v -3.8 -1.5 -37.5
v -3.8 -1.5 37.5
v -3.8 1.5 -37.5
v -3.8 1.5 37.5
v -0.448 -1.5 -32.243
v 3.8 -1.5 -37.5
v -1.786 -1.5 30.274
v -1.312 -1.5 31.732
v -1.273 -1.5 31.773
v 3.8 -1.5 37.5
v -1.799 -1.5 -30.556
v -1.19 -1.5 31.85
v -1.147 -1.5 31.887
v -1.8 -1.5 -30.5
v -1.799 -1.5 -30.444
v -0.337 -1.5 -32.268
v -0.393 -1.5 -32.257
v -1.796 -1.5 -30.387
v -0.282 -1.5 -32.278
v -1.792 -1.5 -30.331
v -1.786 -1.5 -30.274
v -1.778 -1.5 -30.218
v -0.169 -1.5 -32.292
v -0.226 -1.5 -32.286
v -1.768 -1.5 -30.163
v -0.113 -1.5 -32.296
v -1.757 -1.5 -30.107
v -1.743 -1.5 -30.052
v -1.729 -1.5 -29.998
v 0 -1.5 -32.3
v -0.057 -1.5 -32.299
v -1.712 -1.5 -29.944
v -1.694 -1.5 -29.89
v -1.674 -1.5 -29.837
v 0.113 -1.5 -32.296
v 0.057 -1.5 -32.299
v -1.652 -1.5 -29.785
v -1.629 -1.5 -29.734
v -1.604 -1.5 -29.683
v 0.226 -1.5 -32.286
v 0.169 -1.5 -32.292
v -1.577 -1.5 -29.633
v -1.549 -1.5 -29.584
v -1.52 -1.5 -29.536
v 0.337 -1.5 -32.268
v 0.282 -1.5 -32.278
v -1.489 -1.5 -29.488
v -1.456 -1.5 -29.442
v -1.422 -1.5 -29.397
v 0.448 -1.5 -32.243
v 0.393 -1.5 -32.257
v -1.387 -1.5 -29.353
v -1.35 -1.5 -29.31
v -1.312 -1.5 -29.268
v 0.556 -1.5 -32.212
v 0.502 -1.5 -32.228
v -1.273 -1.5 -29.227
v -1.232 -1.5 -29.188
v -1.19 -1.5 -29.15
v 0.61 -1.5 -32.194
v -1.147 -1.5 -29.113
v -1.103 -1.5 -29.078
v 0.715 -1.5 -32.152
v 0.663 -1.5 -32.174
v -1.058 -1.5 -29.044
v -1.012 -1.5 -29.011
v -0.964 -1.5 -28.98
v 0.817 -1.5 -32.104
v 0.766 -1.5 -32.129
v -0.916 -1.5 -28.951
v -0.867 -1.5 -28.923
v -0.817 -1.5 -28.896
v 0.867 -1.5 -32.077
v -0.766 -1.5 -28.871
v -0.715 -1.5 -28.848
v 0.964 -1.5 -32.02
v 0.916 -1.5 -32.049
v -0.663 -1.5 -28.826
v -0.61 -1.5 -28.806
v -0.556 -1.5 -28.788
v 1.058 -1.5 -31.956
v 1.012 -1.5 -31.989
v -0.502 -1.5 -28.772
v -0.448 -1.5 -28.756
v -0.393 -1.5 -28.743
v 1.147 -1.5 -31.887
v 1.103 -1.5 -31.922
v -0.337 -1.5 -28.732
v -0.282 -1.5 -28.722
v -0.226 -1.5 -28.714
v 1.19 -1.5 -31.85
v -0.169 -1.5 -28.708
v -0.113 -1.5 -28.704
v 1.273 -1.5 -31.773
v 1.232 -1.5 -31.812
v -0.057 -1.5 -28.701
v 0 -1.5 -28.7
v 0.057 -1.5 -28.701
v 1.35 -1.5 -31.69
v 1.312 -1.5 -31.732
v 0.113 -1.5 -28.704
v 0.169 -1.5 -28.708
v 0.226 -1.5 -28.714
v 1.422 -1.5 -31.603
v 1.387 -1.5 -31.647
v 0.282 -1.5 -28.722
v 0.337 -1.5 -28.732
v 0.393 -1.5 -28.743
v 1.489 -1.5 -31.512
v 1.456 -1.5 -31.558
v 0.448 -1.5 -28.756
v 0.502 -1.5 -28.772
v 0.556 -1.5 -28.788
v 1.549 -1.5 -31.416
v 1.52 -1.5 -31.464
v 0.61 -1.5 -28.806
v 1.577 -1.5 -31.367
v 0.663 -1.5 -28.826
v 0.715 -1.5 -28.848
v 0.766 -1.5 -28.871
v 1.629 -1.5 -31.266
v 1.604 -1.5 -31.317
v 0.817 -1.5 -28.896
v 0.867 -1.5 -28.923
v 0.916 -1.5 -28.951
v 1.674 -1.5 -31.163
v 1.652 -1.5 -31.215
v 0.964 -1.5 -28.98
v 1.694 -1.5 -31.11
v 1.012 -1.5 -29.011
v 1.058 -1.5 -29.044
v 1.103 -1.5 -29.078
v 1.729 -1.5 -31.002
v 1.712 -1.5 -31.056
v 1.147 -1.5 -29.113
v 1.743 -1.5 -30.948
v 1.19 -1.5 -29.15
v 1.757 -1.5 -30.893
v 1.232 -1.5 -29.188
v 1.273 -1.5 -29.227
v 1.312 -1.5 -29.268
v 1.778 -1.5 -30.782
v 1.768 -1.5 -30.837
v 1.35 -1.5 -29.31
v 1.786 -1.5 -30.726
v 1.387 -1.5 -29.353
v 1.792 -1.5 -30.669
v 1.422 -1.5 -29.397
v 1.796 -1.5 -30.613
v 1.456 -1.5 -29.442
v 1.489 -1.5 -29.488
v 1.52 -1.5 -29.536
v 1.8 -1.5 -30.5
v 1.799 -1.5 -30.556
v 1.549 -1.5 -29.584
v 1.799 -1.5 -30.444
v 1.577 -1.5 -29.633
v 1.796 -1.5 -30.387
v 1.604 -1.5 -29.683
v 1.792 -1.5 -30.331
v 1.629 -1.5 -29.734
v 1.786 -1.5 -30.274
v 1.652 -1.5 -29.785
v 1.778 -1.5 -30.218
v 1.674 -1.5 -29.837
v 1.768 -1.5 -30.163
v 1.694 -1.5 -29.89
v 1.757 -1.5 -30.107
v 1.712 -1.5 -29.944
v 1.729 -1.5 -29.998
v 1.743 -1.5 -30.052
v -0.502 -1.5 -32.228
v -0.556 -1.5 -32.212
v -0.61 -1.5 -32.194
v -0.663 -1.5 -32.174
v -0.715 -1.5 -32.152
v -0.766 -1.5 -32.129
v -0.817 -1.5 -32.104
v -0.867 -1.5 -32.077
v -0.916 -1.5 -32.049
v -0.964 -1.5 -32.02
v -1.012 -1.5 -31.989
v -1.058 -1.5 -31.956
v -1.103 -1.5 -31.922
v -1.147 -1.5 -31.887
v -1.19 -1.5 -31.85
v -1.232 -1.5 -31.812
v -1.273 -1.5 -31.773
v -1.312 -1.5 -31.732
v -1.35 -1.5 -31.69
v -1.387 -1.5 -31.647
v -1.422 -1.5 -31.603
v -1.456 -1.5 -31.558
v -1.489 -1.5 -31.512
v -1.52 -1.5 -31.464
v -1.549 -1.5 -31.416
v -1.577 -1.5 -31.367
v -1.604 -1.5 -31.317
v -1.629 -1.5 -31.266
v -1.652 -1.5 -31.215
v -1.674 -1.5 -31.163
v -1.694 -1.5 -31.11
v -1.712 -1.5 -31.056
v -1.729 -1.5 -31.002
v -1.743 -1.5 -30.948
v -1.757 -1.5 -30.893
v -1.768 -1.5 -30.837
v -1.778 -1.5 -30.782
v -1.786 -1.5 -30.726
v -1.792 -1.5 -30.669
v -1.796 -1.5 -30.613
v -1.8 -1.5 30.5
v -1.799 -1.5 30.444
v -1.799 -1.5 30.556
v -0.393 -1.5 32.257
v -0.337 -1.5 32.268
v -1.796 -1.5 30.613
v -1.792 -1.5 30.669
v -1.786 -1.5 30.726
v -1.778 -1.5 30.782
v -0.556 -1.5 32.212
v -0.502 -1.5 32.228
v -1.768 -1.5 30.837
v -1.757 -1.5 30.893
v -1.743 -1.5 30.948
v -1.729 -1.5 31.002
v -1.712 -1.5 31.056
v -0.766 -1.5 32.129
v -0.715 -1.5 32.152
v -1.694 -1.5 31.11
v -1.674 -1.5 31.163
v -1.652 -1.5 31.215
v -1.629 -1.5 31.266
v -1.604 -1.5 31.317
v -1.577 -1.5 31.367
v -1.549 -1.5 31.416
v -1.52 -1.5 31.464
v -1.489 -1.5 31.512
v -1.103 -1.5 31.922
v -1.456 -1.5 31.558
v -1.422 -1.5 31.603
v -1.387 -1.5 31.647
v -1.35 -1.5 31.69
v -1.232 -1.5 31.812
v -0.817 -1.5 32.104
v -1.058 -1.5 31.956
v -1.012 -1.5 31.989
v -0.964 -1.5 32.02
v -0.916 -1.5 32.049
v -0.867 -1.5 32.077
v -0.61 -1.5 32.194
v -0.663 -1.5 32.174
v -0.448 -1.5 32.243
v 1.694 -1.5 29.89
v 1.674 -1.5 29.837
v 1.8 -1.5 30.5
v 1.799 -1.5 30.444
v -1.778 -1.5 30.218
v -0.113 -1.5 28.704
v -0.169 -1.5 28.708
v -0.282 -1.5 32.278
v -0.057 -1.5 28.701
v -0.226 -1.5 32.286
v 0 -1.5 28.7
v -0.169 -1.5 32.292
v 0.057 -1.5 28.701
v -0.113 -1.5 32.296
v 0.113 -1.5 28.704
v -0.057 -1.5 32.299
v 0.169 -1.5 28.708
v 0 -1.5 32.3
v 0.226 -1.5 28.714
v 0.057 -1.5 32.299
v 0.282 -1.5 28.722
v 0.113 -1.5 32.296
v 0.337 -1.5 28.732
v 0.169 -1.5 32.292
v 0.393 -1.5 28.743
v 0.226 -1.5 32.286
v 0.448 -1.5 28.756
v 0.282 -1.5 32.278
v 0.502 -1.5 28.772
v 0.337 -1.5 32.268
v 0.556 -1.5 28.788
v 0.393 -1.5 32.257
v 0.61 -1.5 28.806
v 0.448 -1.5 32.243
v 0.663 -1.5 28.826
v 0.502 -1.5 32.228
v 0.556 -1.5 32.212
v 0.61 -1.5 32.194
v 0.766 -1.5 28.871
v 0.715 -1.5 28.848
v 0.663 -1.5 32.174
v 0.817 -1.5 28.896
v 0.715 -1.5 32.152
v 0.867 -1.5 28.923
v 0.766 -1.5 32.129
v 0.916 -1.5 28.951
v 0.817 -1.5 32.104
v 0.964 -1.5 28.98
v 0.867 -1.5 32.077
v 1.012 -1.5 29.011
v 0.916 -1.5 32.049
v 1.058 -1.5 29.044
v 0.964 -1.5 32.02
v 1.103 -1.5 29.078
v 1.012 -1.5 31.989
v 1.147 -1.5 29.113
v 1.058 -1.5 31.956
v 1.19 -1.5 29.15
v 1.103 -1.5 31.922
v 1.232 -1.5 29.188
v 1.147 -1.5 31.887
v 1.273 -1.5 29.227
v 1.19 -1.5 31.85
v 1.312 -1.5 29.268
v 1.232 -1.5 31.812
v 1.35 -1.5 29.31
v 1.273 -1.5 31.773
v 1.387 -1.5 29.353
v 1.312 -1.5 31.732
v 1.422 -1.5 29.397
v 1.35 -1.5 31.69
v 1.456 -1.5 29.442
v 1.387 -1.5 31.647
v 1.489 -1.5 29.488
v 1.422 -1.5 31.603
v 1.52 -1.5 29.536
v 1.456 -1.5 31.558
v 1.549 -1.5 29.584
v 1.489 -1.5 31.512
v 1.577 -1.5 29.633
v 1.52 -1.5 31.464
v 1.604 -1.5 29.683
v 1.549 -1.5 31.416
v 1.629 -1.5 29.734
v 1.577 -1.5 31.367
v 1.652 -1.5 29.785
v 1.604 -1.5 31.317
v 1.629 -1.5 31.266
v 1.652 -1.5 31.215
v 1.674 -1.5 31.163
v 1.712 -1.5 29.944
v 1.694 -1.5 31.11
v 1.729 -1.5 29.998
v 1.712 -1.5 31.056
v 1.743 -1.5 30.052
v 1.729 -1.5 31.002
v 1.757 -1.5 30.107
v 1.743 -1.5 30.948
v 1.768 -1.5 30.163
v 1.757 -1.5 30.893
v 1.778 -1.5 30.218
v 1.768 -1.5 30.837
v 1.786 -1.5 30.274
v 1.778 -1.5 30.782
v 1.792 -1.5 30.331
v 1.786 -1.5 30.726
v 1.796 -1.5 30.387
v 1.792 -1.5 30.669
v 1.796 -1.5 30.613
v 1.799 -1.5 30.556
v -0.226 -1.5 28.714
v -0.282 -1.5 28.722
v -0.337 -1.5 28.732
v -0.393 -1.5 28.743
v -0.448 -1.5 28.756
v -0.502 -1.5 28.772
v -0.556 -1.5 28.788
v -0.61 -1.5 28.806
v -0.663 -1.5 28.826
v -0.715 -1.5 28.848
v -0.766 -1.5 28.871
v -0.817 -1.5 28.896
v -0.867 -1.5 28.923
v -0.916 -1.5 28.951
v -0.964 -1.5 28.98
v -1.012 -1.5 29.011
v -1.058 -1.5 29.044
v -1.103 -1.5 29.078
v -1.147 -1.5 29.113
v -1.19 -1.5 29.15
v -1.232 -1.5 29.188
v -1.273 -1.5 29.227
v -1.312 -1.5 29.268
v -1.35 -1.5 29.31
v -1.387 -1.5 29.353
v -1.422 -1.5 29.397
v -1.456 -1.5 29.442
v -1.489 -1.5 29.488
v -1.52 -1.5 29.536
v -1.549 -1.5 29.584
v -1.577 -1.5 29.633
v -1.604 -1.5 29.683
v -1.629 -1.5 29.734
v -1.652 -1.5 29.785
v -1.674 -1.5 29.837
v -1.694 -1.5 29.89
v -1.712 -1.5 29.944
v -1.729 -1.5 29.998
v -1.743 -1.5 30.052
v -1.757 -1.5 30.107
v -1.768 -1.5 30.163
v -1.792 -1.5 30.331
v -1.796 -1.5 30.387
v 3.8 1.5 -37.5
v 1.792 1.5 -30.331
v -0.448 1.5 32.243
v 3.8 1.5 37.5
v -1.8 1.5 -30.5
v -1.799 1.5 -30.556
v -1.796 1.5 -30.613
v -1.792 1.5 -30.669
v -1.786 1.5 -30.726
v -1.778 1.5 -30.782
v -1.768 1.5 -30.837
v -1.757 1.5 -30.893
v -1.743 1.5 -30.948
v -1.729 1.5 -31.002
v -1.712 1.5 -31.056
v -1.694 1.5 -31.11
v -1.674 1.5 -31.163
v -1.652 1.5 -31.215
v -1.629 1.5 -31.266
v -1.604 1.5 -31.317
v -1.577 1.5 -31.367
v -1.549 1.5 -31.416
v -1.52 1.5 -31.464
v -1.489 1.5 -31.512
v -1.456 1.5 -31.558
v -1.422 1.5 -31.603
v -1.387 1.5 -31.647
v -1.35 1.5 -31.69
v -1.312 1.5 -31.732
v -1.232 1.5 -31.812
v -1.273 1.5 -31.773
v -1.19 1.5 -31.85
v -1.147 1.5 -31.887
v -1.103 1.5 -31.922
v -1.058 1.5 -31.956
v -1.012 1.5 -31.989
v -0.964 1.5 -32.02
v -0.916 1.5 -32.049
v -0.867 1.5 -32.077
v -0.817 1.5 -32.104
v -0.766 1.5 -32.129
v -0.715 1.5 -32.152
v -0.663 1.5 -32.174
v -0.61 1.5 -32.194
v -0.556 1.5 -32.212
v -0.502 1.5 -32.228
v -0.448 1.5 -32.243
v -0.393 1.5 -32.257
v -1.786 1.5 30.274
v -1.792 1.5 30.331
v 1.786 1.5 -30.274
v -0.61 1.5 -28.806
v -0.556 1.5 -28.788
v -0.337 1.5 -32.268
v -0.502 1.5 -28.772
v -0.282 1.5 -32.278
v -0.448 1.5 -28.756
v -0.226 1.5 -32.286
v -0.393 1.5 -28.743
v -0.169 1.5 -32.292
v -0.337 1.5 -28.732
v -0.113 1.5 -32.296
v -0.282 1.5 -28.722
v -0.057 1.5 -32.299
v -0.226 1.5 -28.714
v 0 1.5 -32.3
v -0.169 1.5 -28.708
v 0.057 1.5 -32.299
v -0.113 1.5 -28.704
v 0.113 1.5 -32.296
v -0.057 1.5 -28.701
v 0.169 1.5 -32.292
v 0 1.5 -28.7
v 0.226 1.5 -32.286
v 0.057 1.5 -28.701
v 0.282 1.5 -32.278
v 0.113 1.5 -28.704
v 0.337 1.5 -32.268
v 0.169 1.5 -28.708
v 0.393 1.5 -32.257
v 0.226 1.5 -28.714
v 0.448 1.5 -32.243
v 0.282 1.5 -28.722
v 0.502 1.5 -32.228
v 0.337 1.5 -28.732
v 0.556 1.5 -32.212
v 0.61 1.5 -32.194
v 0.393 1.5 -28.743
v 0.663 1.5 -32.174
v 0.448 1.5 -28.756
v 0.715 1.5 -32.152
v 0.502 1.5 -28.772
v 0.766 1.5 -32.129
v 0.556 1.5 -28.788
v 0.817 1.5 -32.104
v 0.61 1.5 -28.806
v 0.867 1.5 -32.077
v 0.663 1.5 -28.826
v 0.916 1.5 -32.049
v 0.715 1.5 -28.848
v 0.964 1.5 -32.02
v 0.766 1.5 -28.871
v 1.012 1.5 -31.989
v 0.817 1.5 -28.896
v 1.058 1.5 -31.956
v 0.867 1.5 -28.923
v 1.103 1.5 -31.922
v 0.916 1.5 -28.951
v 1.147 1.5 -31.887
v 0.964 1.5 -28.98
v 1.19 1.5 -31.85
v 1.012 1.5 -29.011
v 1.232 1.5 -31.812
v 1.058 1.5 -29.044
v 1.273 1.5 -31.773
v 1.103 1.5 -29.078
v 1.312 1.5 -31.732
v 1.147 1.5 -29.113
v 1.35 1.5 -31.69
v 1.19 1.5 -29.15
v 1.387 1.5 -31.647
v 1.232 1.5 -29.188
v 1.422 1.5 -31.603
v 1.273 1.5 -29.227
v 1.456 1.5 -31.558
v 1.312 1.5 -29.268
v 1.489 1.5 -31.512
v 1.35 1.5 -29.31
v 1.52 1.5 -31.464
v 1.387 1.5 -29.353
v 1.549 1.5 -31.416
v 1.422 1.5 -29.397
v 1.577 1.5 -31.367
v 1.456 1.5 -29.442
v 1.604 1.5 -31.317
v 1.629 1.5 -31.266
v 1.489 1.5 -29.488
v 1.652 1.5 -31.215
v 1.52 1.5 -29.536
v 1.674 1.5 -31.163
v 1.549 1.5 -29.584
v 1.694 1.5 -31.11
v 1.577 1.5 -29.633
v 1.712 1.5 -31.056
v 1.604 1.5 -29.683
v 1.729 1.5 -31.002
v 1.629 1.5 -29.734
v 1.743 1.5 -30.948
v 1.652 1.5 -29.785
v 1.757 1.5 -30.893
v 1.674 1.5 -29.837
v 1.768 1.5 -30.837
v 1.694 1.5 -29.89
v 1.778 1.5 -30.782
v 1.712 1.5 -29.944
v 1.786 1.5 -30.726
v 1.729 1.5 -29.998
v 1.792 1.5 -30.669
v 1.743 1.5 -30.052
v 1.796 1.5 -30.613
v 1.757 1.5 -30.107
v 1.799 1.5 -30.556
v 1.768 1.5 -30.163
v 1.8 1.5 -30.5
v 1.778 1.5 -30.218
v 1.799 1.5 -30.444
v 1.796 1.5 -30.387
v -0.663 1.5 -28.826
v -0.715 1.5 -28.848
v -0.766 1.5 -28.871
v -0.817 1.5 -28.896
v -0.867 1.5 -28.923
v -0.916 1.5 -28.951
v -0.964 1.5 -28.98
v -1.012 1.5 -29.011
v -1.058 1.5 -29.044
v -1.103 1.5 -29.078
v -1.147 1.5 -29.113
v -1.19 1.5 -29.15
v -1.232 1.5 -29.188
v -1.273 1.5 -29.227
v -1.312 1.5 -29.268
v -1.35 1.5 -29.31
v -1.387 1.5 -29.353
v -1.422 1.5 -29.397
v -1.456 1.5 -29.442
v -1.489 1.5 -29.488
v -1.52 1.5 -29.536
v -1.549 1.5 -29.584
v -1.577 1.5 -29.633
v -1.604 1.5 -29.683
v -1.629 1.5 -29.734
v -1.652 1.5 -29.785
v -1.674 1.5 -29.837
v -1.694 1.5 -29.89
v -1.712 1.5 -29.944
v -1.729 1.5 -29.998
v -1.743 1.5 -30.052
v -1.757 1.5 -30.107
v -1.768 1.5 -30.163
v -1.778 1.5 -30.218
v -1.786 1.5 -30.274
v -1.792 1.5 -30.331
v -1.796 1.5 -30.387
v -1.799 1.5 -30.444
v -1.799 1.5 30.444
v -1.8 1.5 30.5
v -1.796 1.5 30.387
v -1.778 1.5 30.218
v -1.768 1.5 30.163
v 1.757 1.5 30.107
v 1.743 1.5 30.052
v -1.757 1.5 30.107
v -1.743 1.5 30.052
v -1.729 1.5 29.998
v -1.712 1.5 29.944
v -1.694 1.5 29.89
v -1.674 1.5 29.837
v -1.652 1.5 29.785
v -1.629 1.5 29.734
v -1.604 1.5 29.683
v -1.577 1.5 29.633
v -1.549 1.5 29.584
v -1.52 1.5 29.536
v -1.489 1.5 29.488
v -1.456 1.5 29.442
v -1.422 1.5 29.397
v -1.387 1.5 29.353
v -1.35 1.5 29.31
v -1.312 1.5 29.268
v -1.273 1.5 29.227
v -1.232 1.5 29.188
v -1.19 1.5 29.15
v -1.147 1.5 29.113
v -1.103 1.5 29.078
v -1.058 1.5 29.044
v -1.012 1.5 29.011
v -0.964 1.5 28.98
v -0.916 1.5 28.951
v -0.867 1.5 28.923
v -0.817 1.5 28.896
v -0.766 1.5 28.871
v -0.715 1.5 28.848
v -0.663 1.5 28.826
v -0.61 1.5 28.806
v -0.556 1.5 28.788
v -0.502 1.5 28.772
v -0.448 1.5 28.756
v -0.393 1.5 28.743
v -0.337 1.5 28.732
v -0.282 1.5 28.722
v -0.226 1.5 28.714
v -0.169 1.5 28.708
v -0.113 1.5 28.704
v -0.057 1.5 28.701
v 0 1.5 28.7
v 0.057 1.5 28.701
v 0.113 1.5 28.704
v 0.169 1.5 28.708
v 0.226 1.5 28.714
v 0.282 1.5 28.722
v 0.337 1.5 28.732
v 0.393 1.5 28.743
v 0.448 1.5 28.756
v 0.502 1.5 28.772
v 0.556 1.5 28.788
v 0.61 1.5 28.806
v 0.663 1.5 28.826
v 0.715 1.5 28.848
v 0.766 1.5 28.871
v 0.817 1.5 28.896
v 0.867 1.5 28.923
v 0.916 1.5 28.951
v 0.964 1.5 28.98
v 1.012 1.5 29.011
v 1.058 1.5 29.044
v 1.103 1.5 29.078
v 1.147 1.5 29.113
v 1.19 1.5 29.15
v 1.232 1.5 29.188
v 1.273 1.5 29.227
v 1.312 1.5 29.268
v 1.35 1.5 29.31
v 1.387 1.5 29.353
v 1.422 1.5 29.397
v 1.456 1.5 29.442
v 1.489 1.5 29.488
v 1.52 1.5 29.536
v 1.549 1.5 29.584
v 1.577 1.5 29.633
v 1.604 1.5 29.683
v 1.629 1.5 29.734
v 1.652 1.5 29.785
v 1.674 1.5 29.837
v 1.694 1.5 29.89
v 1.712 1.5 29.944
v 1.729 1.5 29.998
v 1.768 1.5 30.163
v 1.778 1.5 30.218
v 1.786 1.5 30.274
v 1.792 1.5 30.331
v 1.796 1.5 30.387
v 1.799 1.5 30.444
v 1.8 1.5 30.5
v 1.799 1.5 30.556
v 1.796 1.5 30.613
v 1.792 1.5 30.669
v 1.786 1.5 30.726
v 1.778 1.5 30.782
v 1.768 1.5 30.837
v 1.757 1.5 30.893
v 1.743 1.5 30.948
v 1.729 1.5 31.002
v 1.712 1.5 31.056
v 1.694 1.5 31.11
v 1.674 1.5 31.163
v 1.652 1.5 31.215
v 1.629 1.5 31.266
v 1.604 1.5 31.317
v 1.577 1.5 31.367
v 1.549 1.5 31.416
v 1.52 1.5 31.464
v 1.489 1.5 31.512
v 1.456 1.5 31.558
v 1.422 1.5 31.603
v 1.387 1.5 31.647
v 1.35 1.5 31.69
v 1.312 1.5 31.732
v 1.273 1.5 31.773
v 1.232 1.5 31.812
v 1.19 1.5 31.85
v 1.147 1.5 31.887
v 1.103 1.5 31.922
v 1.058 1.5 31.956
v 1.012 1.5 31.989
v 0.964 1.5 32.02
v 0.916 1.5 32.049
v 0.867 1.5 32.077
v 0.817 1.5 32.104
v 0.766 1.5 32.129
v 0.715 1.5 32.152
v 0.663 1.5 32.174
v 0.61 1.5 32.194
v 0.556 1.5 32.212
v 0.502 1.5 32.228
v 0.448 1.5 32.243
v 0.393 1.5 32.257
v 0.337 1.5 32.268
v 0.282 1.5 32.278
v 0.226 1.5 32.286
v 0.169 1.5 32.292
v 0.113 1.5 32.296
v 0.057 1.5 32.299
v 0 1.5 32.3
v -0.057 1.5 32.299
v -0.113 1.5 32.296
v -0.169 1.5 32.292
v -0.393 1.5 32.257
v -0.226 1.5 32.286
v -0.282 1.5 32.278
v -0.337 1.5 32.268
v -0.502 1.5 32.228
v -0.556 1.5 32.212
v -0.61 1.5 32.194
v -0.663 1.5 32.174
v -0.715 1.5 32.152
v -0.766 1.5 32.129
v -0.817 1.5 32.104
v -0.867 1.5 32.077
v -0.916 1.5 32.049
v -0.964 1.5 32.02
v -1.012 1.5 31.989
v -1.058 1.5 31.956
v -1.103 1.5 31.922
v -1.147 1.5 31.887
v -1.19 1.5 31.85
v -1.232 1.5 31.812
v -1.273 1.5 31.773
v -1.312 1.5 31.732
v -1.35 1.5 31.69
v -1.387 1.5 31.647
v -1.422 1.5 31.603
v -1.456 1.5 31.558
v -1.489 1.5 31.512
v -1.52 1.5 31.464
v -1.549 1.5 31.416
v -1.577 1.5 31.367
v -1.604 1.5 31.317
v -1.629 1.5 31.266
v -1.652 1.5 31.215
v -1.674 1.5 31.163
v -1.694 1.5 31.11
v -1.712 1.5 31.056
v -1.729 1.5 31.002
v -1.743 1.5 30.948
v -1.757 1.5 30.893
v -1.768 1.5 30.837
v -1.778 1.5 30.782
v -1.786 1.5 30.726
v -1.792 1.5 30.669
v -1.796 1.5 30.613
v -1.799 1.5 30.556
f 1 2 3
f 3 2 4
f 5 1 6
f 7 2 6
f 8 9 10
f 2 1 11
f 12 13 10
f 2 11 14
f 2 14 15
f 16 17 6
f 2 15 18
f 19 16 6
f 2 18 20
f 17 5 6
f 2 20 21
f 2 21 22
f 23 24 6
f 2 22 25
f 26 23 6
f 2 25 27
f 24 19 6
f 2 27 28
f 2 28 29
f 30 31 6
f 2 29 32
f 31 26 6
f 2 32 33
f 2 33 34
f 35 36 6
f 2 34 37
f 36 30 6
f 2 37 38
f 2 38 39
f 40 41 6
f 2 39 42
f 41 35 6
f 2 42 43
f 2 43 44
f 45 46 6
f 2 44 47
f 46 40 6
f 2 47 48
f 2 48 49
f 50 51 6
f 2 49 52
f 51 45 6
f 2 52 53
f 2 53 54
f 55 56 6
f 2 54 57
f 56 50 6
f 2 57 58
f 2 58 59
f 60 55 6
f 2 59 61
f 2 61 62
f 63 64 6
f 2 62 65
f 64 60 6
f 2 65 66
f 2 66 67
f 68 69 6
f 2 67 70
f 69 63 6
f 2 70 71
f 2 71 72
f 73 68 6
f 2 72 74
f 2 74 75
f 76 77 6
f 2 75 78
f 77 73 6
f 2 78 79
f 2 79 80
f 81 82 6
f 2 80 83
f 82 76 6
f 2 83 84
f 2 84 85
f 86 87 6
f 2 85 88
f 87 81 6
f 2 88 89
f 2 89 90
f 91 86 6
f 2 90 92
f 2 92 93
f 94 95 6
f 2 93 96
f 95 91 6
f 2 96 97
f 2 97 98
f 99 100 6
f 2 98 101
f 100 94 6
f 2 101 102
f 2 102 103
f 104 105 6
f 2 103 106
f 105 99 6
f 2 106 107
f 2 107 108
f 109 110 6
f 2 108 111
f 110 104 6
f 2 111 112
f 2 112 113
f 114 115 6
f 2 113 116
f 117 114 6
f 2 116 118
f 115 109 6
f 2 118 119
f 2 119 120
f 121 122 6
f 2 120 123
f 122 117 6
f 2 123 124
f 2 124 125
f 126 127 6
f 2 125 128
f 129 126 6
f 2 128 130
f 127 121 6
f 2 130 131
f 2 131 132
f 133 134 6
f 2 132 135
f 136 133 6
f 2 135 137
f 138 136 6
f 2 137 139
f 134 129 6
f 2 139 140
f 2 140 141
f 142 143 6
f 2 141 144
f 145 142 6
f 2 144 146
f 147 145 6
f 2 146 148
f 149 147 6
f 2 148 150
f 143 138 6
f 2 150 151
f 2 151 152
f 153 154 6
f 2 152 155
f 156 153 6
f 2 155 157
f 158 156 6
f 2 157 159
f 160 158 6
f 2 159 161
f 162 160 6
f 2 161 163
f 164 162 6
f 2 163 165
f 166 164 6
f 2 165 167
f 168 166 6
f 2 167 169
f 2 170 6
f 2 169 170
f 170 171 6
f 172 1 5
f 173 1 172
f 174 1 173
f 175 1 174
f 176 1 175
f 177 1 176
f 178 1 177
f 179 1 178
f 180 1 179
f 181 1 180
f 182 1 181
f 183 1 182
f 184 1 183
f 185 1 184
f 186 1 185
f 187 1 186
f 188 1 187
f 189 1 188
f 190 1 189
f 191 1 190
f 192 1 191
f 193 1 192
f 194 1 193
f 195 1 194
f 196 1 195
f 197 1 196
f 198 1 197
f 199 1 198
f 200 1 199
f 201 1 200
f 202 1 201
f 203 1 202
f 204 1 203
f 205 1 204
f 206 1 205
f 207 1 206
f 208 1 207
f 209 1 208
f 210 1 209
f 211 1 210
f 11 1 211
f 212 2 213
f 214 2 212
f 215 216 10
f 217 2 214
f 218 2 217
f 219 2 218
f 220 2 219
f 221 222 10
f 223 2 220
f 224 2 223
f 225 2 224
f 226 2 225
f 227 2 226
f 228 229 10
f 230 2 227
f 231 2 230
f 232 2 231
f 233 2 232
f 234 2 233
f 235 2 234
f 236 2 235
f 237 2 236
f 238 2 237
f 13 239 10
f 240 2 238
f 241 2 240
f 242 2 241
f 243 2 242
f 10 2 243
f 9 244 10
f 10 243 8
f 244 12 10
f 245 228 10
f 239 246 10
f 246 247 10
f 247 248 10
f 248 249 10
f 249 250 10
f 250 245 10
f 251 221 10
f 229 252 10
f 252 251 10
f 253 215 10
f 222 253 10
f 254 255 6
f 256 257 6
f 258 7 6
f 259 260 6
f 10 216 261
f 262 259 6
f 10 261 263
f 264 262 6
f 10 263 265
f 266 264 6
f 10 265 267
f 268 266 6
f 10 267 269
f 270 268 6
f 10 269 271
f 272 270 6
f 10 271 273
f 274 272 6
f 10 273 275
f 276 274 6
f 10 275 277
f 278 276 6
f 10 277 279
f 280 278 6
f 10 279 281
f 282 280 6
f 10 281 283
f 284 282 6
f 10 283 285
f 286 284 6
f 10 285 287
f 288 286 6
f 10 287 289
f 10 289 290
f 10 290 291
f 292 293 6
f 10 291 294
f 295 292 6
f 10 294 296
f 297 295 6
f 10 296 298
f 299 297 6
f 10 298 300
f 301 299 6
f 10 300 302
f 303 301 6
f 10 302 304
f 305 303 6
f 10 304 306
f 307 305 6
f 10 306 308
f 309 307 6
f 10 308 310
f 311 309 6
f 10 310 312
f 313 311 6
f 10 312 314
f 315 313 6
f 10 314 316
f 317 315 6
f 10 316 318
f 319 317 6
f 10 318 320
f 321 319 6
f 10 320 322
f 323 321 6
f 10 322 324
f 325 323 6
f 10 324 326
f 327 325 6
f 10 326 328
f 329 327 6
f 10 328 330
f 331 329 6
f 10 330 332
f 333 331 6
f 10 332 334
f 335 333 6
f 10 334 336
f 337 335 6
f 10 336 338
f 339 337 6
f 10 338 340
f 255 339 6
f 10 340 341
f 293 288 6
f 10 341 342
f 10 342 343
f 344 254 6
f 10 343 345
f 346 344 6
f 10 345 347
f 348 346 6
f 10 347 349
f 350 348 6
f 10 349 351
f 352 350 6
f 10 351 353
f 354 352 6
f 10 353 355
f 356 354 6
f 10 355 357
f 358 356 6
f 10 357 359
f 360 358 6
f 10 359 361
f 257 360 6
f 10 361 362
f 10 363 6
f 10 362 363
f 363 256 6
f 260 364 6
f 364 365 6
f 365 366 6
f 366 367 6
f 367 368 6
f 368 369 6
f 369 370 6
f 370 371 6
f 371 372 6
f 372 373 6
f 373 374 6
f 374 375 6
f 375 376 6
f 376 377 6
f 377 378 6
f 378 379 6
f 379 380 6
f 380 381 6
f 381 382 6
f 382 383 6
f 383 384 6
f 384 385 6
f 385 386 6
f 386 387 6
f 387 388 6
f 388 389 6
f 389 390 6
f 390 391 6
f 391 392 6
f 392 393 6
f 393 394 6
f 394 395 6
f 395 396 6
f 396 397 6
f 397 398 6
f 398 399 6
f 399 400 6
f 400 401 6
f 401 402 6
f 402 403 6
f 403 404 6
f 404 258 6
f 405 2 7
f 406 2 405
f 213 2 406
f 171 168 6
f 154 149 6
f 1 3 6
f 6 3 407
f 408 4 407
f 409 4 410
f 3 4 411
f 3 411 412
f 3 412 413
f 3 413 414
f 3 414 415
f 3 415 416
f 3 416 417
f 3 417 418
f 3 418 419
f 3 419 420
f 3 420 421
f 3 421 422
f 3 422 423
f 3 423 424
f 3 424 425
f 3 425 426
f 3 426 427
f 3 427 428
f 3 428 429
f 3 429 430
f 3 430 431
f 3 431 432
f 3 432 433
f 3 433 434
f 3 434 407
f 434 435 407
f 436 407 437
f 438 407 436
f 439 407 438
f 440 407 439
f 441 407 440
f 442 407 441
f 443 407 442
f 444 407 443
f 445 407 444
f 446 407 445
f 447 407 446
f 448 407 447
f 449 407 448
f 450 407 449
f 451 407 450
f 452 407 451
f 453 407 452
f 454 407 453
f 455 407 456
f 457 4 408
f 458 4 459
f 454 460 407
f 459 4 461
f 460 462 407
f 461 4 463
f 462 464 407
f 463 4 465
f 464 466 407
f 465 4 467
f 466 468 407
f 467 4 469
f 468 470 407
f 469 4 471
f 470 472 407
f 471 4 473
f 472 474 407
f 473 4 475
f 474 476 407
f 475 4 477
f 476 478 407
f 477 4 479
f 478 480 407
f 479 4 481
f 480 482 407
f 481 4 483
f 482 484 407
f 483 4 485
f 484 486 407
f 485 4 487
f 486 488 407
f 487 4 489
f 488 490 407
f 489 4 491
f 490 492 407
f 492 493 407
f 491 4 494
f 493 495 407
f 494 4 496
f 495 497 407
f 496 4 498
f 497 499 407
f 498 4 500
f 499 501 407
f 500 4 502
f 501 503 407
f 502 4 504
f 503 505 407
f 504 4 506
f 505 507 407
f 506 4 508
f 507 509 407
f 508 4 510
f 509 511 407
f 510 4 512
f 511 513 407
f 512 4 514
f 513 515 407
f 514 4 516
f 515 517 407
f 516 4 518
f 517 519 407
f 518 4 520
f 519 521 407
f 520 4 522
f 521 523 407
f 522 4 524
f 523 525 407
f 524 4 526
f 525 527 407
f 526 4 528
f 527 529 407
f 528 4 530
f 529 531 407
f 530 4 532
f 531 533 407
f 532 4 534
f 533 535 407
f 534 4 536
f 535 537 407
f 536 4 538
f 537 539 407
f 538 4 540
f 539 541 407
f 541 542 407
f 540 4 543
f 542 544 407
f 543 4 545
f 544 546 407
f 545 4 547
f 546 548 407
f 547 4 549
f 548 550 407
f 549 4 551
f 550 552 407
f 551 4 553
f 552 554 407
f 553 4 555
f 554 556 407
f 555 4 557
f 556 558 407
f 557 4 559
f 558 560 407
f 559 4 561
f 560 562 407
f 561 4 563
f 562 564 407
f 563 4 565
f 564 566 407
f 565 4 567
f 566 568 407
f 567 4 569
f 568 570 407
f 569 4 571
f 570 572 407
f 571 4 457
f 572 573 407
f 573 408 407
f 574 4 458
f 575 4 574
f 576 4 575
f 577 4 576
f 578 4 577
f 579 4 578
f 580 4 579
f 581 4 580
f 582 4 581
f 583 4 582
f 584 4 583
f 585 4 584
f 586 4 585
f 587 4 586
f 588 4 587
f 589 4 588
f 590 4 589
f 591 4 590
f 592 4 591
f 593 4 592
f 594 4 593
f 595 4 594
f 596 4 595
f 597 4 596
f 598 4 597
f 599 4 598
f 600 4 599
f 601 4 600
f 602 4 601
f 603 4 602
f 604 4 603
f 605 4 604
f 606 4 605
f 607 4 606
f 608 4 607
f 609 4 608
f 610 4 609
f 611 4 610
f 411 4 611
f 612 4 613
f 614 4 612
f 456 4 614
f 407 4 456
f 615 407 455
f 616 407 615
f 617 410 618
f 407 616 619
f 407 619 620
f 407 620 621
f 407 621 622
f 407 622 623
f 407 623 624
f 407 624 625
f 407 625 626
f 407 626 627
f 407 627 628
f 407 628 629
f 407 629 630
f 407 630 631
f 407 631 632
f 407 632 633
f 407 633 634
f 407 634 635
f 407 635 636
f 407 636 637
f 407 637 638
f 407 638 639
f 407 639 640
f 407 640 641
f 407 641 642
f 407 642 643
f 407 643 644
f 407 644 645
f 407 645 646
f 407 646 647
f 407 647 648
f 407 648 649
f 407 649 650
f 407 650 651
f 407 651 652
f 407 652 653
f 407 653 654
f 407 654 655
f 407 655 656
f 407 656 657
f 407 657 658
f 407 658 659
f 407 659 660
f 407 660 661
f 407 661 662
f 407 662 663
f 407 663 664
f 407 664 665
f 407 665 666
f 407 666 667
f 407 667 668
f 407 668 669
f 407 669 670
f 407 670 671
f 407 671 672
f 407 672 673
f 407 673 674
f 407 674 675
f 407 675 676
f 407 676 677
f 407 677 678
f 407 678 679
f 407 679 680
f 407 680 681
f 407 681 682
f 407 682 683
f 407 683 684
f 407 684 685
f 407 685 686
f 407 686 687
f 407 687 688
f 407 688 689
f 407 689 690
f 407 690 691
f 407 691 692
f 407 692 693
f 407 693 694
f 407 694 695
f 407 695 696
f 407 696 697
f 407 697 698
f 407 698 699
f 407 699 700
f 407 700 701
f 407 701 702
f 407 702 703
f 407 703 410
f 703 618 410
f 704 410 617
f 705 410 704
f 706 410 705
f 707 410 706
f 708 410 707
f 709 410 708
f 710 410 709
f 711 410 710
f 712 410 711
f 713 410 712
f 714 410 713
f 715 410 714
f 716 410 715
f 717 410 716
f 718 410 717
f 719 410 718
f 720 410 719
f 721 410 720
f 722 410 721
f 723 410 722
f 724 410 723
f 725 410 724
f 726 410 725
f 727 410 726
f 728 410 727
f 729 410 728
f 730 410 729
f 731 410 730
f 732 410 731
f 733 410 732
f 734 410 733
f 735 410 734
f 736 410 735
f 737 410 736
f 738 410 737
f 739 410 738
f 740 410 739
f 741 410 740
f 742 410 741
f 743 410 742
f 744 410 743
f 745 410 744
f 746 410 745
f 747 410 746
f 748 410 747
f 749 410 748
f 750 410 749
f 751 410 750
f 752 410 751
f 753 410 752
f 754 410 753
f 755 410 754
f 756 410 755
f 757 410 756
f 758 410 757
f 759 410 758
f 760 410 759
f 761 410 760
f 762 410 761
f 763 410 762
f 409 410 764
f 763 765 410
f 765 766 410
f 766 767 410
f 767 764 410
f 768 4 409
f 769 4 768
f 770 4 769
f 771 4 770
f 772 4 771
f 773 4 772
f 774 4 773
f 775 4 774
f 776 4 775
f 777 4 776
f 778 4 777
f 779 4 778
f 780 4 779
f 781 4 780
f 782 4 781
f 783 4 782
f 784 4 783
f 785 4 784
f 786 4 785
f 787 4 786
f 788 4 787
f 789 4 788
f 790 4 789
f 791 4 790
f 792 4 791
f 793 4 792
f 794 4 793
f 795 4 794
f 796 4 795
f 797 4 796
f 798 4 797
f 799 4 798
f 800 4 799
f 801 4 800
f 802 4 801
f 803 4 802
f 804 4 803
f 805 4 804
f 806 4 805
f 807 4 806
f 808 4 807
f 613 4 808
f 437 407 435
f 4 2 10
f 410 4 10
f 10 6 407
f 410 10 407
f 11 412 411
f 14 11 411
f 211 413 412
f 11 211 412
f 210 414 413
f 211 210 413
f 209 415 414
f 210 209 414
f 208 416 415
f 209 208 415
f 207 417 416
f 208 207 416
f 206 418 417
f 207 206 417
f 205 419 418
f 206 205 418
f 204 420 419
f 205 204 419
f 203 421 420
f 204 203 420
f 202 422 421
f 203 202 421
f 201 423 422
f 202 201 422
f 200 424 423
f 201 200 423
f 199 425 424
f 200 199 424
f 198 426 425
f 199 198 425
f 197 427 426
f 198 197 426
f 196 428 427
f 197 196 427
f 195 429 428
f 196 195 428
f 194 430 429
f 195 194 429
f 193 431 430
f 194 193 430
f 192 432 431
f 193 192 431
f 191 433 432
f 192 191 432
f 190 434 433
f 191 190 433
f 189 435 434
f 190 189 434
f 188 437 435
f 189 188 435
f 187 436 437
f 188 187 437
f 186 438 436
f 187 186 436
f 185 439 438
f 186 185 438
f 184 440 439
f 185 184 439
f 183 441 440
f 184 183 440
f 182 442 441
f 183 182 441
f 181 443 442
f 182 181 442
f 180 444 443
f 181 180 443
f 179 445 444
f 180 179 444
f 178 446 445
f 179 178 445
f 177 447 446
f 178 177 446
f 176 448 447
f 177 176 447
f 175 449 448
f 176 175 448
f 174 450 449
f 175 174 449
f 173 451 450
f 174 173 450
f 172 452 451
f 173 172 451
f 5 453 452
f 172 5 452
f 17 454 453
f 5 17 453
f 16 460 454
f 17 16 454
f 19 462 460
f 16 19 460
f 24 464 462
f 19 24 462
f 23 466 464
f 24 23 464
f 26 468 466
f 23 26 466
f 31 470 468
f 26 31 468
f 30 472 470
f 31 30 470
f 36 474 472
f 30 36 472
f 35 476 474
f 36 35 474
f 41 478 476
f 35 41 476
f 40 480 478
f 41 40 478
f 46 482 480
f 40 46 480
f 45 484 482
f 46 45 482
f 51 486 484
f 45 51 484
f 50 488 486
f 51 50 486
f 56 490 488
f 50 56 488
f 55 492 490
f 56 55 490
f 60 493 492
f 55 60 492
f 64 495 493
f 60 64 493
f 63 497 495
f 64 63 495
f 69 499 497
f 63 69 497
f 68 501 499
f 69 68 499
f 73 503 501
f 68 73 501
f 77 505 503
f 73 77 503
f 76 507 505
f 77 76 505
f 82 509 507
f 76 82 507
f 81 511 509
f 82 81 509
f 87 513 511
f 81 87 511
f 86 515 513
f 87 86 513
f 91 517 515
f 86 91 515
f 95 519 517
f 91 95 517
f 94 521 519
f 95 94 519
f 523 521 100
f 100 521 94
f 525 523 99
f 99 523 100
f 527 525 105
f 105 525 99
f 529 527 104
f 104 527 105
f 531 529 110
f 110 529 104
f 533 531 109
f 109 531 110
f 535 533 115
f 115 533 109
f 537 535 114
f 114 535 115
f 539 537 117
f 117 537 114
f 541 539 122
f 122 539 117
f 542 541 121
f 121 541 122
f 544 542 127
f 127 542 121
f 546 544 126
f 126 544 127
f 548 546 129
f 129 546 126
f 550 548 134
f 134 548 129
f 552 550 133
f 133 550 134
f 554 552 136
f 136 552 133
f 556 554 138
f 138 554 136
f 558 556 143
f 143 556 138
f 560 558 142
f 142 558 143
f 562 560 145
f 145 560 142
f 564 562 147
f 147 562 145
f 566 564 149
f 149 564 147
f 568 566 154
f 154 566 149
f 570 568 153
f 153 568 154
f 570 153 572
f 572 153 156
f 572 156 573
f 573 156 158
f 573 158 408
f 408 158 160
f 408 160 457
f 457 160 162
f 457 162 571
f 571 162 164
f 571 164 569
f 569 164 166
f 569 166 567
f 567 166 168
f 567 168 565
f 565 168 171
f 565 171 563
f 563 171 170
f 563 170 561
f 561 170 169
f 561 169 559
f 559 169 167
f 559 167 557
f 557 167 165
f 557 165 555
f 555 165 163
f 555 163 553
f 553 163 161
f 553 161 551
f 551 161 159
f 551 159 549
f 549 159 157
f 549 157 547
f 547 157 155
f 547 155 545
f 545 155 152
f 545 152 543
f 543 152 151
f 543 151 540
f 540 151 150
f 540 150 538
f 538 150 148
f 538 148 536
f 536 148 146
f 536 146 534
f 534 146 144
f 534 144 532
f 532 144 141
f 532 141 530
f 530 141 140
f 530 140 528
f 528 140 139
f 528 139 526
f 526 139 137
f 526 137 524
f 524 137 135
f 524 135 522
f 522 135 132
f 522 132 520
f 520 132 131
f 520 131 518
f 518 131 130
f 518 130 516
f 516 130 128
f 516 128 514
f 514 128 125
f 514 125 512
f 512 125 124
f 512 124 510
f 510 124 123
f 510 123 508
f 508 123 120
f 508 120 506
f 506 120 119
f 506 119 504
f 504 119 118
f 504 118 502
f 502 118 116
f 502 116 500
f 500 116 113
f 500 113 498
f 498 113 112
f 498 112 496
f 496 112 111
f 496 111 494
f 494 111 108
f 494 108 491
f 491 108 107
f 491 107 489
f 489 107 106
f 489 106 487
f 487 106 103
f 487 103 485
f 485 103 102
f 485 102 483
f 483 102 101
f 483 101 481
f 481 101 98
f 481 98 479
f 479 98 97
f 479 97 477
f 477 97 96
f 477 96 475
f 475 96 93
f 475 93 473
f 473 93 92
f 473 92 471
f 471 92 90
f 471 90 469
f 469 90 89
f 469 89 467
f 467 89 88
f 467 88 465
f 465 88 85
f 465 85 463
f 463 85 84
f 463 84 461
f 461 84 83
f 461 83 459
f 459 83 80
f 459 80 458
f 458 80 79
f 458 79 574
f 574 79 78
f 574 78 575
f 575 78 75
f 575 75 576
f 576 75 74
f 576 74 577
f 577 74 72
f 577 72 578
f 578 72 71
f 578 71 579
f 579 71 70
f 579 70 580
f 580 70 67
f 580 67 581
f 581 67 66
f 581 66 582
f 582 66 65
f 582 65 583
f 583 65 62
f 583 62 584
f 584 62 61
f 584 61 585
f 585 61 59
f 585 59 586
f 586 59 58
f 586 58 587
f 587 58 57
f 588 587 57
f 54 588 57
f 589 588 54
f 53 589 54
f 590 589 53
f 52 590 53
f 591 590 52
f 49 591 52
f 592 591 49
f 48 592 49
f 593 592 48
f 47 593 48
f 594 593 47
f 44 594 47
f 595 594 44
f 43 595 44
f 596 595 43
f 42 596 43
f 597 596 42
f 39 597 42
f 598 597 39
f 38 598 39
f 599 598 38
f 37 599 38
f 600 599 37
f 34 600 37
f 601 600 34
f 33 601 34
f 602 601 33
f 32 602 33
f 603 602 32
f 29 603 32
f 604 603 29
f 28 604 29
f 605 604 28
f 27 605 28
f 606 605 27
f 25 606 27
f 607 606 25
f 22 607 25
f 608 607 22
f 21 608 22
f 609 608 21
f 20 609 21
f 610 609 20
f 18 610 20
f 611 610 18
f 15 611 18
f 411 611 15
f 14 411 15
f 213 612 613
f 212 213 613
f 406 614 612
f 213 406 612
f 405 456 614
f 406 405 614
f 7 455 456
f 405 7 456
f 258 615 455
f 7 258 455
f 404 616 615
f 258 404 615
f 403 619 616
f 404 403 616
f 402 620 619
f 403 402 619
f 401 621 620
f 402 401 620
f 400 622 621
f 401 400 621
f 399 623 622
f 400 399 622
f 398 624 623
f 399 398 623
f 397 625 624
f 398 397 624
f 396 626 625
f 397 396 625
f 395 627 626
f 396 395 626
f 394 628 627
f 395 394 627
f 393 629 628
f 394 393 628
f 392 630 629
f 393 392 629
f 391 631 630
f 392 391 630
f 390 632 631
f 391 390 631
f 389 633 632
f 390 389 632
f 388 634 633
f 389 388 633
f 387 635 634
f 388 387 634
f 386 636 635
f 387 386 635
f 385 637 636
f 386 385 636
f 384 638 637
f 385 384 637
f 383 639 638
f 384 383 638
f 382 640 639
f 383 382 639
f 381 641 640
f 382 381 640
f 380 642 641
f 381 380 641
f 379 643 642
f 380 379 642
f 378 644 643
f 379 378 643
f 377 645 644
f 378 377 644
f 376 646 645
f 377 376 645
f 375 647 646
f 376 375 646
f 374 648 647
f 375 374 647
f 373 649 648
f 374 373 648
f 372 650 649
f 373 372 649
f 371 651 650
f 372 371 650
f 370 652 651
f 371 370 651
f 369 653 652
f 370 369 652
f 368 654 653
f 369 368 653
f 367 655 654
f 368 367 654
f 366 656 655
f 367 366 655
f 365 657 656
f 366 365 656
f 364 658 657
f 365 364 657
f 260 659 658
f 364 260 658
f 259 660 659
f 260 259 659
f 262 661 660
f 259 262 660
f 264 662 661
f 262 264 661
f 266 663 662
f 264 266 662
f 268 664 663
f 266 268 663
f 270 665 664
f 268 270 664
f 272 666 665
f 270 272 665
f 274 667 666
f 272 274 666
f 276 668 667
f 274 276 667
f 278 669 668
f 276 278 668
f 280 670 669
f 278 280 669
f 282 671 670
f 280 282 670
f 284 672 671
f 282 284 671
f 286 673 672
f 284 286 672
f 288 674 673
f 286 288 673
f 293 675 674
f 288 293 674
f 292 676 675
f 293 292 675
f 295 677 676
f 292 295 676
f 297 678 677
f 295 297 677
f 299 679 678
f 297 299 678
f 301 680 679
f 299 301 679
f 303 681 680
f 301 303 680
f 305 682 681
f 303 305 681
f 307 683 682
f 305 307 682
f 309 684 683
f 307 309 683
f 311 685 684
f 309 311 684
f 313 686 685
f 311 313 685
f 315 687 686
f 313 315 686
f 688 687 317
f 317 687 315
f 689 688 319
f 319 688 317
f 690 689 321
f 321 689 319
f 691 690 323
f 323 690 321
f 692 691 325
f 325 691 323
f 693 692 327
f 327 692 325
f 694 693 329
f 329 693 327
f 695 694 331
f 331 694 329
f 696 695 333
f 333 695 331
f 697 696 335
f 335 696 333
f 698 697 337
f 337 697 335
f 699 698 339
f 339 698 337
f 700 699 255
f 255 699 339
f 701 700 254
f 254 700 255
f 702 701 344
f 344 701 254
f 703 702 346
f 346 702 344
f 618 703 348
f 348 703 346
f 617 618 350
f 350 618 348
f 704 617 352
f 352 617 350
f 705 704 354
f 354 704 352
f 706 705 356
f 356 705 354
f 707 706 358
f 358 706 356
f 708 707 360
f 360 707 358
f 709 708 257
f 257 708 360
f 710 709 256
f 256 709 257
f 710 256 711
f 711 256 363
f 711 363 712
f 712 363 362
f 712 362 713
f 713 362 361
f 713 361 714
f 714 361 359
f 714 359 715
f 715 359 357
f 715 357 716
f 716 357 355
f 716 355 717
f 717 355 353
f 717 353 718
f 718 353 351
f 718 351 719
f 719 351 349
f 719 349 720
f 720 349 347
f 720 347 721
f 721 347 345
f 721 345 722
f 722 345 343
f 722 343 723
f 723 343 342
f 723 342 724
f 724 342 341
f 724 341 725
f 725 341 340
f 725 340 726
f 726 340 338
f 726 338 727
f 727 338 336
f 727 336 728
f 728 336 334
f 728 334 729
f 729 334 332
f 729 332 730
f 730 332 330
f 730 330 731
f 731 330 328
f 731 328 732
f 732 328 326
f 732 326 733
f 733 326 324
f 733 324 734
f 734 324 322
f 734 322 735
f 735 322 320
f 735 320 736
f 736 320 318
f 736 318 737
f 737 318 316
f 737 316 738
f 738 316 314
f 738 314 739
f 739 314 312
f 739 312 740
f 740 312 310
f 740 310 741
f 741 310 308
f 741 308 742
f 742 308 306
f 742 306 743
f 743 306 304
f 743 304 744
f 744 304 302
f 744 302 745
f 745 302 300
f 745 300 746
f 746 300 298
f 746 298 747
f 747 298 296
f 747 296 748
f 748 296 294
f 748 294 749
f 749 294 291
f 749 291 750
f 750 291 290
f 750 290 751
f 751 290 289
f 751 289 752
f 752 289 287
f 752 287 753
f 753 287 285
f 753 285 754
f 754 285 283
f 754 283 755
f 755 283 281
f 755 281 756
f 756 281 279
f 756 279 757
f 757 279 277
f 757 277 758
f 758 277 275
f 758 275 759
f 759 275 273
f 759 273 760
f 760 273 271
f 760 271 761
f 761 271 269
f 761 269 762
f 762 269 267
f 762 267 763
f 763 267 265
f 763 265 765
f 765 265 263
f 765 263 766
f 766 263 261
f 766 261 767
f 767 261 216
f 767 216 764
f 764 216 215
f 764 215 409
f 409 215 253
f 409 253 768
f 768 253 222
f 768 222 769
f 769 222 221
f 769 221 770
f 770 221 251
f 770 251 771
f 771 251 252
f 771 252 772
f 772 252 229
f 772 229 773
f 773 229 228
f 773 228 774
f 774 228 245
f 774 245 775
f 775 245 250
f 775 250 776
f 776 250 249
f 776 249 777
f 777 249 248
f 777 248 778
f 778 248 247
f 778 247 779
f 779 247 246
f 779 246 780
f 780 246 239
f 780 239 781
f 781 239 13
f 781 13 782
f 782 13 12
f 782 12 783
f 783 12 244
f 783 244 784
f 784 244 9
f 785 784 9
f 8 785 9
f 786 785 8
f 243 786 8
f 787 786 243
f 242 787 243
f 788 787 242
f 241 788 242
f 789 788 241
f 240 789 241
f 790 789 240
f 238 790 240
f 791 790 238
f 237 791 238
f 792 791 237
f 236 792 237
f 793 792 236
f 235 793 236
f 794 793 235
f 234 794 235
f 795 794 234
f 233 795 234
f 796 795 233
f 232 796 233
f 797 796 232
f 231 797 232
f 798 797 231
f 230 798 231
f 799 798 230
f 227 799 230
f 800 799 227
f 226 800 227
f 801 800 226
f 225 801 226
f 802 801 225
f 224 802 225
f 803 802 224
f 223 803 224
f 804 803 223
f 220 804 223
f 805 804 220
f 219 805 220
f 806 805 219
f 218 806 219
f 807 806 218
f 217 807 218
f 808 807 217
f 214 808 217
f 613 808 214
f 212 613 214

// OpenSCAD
gQuality=200;
gHeightBetweenExtrusions=75;
gThickness=3;
gMetricScrewSize=3;
gScrewHoleOffsetFromEnd=7;

function ScrewClearanceRadius(screwSize) = screwSize*1.2/2;

cubeDimensions=[ScrewClearanceRadius(gMetricScrewSize)*2+4, gThickness, gHeightBetweenExtrusions];

difference()
{
	cube(cubeDimensions,center=true);

	for(z = [-1,1])
	{
		translate([0,0,z*gHeightBetweenExtrusions/2 - z*gScrewHoleOffsetFromEnd])
		rotate([90,0,0])
		# cylinder(r=ScrewClearanceRadius(gMetricScrewSize), h=200, $fn=gQuality, center=true);
	}
}
